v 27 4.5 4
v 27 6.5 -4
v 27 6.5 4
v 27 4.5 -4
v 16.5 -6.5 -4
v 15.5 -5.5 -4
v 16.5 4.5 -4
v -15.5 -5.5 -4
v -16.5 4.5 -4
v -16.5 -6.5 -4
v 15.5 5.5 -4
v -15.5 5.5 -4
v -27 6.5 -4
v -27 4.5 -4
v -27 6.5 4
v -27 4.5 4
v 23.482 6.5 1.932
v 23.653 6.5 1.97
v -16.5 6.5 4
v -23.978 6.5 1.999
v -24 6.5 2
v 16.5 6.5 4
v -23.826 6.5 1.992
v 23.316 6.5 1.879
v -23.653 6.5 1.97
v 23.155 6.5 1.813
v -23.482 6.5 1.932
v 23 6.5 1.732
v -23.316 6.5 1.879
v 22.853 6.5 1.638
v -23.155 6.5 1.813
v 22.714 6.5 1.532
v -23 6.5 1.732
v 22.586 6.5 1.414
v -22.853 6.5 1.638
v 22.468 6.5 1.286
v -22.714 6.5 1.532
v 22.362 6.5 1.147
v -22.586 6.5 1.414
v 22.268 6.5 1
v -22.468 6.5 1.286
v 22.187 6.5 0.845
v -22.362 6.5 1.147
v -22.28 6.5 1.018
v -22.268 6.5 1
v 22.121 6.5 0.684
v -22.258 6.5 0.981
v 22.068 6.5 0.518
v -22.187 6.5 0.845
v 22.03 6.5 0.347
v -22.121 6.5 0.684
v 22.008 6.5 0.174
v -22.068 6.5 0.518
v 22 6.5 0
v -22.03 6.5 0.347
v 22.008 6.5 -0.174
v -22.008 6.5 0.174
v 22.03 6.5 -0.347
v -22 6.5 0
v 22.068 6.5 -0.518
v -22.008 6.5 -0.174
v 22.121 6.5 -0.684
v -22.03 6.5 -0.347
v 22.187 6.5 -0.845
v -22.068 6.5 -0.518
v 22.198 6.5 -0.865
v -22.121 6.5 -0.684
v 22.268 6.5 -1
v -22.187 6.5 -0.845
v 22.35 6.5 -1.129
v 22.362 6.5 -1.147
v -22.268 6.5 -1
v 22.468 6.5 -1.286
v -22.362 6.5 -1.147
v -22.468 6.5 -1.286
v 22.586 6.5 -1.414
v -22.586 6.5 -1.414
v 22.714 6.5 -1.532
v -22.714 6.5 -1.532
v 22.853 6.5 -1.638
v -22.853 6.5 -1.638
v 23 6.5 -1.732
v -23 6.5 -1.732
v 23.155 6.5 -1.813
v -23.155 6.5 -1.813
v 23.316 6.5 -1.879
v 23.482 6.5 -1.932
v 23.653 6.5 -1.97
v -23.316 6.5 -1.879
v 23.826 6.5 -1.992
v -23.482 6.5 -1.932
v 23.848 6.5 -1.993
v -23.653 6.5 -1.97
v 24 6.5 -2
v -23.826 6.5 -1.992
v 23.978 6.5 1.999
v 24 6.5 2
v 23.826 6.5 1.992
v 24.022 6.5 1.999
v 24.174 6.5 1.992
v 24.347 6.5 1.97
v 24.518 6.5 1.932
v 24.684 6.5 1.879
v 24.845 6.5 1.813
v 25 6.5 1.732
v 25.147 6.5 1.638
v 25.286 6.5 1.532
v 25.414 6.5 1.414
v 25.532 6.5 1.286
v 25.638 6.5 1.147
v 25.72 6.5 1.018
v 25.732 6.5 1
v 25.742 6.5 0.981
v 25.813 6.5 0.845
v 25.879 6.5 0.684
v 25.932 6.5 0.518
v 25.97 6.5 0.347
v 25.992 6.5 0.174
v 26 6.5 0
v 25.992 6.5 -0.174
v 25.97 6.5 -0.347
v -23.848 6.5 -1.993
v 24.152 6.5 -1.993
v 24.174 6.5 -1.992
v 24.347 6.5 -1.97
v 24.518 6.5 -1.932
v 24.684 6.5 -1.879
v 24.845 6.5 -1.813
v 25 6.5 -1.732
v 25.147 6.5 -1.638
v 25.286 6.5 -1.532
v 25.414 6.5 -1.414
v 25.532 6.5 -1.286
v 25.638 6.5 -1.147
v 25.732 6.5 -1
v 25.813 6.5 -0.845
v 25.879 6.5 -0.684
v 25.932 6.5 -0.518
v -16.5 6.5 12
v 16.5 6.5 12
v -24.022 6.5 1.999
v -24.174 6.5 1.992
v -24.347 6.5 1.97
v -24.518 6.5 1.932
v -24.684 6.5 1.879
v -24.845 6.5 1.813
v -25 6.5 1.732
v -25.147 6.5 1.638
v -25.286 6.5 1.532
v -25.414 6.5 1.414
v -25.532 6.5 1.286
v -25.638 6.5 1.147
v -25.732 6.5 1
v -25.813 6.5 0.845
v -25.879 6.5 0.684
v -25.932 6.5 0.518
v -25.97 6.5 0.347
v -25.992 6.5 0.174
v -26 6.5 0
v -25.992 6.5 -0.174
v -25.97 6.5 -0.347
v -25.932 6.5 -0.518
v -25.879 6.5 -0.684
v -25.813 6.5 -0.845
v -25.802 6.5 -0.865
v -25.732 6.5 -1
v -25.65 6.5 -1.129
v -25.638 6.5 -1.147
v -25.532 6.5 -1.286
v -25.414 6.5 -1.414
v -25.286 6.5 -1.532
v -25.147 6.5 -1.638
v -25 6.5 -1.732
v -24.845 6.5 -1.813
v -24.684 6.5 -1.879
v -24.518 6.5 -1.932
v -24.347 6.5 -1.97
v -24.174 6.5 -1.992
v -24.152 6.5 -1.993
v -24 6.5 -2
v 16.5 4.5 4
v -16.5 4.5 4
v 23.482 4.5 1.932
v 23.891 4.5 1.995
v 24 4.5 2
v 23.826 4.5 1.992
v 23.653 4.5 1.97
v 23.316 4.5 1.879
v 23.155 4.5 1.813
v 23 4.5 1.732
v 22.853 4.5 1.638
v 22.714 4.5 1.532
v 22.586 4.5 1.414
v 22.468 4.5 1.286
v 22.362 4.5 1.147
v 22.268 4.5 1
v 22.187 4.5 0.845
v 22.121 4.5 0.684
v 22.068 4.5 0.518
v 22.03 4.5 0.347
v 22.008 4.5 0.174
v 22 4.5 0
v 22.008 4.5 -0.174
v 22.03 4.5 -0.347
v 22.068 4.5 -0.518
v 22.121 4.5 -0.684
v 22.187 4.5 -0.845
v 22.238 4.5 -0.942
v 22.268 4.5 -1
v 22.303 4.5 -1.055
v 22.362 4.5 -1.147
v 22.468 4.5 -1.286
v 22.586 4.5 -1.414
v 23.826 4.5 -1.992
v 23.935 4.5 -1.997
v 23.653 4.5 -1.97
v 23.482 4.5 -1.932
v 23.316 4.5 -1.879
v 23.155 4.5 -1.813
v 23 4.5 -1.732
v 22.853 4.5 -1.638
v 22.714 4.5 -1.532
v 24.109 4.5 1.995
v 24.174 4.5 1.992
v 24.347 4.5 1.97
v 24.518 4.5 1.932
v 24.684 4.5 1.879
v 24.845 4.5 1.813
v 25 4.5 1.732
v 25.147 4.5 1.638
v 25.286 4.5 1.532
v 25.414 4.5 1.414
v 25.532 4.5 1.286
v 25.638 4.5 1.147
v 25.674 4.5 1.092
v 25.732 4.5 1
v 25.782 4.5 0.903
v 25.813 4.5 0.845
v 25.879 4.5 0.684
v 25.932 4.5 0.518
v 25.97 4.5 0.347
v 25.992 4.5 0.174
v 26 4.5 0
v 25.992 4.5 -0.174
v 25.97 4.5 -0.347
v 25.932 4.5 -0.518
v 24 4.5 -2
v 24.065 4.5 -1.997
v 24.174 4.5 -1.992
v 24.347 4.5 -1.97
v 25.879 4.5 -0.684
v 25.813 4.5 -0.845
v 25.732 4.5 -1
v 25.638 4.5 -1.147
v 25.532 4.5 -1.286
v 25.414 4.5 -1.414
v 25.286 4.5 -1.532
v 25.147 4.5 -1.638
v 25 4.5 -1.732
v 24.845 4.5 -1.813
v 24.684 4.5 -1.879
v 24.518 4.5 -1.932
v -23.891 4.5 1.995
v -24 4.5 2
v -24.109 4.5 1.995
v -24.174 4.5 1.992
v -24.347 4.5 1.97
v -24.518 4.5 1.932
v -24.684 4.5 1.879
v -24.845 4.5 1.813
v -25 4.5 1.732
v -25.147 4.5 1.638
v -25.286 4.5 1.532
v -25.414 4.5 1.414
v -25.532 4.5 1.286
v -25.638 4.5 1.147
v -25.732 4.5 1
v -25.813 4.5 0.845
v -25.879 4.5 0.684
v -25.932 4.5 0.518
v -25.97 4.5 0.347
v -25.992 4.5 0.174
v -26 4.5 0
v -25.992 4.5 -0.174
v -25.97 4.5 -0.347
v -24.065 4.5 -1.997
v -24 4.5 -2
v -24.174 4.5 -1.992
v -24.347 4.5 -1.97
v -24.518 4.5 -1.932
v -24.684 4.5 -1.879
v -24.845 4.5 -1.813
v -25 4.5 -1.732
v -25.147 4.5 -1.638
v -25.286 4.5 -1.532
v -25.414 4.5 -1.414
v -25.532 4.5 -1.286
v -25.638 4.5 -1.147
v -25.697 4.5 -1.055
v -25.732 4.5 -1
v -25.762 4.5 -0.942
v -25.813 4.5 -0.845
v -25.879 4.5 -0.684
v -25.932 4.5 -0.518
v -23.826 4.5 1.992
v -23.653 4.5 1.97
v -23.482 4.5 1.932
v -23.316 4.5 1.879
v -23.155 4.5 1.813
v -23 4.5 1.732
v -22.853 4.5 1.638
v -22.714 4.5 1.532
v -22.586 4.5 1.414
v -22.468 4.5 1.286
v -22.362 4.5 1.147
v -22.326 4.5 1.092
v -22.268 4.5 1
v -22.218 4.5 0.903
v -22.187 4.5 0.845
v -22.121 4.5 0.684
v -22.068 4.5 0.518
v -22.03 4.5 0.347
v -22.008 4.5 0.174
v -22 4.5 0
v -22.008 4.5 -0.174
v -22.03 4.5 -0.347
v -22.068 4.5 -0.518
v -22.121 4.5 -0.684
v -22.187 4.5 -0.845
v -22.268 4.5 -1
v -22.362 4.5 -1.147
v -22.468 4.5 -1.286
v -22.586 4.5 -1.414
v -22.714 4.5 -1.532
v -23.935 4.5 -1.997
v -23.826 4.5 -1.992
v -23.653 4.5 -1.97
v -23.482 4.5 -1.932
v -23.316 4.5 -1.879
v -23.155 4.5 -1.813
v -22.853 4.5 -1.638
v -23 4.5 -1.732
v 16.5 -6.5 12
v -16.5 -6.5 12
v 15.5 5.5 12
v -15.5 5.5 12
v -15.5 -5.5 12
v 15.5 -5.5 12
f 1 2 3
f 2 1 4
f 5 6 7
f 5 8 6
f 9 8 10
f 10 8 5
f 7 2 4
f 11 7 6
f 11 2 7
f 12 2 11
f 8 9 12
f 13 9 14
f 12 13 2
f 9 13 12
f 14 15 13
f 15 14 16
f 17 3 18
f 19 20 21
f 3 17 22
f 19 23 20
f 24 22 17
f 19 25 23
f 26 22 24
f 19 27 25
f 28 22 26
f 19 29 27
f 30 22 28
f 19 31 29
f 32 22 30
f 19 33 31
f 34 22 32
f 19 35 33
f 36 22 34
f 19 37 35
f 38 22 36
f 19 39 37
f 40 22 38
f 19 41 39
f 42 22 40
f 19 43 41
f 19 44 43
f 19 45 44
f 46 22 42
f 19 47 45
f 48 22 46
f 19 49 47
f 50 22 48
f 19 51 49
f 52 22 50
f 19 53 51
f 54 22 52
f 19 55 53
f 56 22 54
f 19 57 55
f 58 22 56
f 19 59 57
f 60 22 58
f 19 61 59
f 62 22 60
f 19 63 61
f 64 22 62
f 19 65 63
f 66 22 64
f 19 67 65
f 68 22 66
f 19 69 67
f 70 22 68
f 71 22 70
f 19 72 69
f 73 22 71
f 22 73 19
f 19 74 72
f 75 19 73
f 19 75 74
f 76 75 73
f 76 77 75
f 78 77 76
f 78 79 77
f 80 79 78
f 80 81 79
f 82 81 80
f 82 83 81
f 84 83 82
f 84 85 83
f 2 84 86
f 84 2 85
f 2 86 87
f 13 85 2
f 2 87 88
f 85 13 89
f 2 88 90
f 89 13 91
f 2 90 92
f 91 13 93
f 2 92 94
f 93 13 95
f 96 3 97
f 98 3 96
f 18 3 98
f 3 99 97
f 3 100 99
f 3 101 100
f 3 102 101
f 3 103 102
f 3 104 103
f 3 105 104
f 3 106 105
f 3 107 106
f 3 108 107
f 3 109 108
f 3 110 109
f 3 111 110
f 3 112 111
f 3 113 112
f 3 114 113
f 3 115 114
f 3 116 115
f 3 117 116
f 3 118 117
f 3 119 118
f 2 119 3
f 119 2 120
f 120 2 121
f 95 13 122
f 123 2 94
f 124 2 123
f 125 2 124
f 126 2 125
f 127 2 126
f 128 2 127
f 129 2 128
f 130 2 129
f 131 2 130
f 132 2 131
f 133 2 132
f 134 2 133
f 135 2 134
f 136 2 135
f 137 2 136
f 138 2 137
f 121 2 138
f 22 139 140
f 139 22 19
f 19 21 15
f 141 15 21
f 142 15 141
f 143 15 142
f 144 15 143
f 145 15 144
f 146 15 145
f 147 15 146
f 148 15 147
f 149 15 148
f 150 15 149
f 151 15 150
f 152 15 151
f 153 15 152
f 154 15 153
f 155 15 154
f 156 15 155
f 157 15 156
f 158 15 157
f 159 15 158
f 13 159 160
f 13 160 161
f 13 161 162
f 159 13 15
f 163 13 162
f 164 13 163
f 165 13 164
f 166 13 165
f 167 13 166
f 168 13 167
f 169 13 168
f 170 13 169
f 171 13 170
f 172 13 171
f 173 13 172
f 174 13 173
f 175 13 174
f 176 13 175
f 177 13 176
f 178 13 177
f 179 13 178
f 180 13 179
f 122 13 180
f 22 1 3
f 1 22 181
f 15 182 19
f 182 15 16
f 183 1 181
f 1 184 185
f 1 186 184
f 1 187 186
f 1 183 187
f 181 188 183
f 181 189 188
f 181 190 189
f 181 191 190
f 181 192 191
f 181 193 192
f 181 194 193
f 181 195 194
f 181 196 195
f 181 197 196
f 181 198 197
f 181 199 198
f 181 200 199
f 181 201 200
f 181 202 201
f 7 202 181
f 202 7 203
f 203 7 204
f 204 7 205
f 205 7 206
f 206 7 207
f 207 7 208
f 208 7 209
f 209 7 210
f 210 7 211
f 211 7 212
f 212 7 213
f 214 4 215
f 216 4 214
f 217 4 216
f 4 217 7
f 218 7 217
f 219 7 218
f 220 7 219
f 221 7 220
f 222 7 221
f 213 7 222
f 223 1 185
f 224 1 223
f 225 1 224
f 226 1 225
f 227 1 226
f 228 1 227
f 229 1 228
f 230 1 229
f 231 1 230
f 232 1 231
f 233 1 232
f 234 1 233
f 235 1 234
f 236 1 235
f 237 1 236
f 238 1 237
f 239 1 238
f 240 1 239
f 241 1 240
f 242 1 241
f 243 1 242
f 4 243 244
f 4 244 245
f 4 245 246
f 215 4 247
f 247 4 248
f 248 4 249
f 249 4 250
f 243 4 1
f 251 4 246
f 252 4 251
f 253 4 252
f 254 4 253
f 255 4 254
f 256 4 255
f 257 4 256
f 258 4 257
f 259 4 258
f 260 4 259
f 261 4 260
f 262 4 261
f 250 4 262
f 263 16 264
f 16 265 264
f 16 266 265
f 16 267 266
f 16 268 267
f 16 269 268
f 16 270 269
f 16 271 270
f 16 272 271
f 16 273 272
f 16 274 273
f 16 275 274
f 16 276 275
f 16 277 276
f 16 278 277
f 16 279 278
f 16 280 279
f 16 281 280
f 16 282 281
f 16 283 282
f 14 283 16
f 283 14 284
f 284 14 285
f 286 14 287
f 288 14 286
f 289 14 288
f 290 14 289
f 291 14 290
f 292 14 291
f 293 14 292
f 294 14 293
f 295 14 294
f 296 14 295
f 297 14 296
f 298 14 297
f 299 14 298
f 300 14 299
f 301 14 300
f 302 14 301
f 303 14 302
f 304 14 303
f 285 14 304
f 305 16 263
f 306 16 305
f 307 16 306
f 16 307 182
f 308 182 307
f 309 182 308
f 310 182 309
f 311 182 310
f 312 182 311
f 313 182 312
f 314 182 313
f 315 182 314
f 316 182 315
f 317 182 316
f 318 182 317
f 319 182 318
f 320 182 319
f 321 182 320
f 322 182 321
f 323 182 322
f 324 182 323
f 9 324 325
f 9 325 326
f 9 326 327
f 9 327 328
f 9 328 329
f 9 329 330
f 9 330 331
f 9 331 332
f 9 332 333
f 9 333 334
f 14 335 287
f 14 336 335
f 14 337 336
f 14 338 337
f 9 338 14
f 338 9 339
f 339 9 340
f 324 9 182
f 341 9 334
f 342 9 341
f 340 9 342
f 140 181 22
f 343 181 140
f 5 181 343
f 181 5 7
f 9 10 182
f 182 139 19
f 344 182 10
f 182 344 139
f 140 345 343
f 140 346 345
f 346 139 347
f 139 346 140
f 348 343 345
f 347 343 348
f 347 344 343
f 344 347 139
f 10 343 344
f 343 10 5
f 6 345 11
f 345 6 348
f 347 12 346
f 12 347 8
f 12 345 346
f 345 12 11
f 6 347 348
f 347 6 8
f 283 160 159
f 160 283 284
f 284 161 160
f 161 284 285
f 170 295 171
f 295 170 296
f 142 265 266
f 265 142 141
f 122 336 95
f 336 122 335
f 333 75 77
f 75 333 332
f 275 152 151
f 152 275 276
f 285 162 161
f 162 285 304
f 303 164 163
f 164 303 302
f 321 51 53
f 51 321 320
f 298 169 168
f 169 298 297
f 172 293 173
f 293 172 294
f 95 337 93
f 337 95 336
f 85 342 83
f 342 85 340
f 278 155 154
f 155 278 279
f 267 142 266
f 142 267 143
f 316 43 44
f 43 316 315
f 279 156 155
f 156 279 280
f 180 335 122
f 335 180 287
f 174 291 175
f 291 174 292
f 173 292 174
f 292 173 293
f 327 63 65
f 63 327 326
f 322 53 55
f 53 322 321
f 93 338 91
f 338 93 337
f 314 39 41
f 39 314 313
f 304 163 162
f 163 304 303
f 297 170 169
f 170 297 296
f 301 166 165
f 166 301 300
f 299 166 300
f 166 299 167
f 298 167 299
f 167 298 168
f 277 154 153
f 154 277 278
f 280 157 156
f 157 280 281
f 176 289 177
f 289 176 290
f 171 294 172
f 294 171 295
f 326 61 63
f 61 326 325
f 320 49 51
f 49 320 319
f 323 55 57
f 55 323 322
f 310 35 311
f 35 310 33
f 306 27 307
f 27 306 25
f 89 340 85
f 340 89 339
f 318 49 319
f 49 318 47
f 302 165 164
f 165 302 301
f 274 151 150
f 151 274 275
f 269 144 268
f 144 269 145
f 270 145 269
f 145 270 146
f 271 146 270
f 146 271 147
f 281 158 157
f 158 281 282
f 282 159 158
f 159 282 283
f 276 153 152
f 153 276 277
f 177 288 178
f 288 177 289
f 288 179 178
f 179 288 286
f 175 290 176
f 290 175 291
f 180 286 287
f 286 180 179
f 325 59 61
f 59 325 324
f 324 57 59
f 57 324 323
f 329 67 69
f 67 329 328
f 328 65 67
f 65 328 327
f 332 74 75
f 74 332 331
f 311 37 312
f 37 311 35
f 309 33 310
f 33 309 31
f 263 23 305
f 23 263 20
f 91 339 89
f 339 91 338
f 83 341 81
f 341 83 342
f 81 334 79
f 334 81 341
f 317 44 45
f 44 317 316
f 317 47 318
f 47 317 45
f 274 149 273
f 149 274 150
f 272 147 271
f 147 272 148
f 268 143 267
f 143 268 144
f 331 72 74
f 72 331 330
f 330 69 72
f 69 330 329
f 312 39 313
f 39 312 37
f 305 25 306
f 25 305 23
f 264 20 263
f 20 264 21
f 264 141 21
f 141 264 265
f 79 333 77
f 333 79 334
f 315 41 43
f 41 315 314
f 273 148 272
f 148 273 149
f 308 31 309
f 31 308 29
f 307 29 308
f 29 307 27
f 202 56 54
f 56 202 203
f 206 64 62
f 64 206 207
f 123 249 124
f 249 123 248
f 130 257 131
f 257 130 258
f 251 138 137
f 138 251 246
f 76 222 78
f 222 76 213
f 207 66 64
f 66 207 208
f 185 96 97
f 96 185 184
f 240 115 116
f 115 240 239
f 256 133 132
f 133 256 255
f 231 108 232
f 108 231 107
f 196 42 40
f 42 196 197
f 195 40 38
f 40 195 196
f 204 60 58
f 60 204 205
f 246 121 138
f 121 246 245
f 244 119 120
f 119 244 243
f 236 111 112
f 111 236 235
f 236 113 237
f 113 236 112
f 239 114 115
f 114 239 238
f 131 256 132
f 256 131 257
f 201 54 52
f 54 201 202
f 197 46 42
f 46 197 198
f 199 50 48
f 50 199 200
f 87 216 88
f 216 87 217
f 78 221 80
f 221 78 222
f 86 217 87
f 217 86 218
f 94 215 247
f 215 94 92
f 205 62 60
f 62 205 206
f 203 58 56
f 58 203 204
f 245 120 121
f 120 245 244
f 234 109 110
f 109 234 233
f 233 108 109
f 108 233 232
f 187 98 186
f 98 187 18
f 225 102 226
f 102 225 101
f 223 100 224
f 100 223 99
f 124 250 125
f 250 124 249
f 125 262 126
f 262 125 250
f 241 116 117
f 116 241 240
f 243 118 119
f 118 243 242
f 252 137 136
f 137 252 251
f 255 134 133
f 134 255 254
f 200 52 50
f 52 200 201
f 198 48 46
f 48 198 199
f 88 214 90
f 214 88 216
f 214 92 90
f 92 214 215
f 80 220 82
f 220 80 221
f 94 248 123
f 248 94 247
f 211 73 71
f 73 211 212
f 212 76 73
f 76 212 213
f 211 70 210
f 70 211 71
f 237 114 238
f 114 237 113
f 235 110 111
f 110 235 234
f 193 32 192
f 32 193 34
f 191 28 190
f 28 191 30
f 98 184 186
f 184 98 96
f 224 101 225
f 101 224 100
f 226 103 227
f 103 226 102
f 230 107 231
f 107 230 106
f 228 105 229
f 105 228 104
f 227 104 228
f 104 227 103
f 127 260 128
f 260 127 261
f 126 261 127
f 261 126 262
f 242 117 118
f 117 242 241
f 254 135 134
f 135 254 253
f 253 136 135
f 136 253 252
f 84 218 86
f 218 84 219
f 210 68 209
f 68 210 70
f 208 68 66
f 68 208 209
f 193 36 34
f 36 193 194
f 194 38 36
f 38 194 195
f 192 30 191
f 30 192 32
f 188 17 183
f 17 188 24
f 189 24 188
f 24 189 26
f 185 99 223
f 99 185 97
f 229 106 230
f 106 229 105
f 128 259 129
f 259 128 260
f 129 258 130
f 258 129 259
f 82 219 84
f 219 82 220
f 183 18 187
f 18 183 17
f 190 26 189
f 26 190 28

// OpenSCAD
gridThickness = 1;
gridDepth = 24;

gridLength = 200;
gridSideLength = 32;
gridSpacing = gridSideLength*cos(30);

perimiterWidth = 2*gridSpacing;
perimiterHeight = 3 * gridSideLength;
perimiterThickness = 2;



holeDepth = 4;
holeOffset = 24;
holeRadius = 2;
holeFacets = 72;

rotate([0,180,0])
difference() {
    union() {
        translate([0,5.5,0])
        cube([54,2,8],center=true);
        translate([0,0,-4])
            cube([33,13,16], center=true);

    }
    color("green")
        cube([31,11,30], center=true);
    
    translate([holeOffset,5,0])
        rotate([90,0,0])
            cylinder(r=holeRadius,h=holeDepth,
                 center=true, $fn=holeFacets);
    translate([-holeOffset,5,0])
        rotate([90,0,0])
            cylinder(r=holeRadius,h=holeDepth,
                 center=true, $fn=holeFacets);
}



module Holes() {
    translate([holeOffset,0,0])
        cylinder(r=holeRadius,h=holeDepth,
                 center=true, $fn=holeFacets);
    translate([-holeOffset,0,0])
        cylinder(r=holeRadius,h=holeDepth,
                 center=true, $fn=holeFacets);
    translate([0,holeOffset,0])
        cylinder(r=holeRadius,h=holeDepth,
                 center=true, $fn=holeFacets);
    translate([0,-holeOffset,0])
        cylinder(r=holeRadius,h=holeDepth,
                 center=true, $fn=holeFacets);
}
